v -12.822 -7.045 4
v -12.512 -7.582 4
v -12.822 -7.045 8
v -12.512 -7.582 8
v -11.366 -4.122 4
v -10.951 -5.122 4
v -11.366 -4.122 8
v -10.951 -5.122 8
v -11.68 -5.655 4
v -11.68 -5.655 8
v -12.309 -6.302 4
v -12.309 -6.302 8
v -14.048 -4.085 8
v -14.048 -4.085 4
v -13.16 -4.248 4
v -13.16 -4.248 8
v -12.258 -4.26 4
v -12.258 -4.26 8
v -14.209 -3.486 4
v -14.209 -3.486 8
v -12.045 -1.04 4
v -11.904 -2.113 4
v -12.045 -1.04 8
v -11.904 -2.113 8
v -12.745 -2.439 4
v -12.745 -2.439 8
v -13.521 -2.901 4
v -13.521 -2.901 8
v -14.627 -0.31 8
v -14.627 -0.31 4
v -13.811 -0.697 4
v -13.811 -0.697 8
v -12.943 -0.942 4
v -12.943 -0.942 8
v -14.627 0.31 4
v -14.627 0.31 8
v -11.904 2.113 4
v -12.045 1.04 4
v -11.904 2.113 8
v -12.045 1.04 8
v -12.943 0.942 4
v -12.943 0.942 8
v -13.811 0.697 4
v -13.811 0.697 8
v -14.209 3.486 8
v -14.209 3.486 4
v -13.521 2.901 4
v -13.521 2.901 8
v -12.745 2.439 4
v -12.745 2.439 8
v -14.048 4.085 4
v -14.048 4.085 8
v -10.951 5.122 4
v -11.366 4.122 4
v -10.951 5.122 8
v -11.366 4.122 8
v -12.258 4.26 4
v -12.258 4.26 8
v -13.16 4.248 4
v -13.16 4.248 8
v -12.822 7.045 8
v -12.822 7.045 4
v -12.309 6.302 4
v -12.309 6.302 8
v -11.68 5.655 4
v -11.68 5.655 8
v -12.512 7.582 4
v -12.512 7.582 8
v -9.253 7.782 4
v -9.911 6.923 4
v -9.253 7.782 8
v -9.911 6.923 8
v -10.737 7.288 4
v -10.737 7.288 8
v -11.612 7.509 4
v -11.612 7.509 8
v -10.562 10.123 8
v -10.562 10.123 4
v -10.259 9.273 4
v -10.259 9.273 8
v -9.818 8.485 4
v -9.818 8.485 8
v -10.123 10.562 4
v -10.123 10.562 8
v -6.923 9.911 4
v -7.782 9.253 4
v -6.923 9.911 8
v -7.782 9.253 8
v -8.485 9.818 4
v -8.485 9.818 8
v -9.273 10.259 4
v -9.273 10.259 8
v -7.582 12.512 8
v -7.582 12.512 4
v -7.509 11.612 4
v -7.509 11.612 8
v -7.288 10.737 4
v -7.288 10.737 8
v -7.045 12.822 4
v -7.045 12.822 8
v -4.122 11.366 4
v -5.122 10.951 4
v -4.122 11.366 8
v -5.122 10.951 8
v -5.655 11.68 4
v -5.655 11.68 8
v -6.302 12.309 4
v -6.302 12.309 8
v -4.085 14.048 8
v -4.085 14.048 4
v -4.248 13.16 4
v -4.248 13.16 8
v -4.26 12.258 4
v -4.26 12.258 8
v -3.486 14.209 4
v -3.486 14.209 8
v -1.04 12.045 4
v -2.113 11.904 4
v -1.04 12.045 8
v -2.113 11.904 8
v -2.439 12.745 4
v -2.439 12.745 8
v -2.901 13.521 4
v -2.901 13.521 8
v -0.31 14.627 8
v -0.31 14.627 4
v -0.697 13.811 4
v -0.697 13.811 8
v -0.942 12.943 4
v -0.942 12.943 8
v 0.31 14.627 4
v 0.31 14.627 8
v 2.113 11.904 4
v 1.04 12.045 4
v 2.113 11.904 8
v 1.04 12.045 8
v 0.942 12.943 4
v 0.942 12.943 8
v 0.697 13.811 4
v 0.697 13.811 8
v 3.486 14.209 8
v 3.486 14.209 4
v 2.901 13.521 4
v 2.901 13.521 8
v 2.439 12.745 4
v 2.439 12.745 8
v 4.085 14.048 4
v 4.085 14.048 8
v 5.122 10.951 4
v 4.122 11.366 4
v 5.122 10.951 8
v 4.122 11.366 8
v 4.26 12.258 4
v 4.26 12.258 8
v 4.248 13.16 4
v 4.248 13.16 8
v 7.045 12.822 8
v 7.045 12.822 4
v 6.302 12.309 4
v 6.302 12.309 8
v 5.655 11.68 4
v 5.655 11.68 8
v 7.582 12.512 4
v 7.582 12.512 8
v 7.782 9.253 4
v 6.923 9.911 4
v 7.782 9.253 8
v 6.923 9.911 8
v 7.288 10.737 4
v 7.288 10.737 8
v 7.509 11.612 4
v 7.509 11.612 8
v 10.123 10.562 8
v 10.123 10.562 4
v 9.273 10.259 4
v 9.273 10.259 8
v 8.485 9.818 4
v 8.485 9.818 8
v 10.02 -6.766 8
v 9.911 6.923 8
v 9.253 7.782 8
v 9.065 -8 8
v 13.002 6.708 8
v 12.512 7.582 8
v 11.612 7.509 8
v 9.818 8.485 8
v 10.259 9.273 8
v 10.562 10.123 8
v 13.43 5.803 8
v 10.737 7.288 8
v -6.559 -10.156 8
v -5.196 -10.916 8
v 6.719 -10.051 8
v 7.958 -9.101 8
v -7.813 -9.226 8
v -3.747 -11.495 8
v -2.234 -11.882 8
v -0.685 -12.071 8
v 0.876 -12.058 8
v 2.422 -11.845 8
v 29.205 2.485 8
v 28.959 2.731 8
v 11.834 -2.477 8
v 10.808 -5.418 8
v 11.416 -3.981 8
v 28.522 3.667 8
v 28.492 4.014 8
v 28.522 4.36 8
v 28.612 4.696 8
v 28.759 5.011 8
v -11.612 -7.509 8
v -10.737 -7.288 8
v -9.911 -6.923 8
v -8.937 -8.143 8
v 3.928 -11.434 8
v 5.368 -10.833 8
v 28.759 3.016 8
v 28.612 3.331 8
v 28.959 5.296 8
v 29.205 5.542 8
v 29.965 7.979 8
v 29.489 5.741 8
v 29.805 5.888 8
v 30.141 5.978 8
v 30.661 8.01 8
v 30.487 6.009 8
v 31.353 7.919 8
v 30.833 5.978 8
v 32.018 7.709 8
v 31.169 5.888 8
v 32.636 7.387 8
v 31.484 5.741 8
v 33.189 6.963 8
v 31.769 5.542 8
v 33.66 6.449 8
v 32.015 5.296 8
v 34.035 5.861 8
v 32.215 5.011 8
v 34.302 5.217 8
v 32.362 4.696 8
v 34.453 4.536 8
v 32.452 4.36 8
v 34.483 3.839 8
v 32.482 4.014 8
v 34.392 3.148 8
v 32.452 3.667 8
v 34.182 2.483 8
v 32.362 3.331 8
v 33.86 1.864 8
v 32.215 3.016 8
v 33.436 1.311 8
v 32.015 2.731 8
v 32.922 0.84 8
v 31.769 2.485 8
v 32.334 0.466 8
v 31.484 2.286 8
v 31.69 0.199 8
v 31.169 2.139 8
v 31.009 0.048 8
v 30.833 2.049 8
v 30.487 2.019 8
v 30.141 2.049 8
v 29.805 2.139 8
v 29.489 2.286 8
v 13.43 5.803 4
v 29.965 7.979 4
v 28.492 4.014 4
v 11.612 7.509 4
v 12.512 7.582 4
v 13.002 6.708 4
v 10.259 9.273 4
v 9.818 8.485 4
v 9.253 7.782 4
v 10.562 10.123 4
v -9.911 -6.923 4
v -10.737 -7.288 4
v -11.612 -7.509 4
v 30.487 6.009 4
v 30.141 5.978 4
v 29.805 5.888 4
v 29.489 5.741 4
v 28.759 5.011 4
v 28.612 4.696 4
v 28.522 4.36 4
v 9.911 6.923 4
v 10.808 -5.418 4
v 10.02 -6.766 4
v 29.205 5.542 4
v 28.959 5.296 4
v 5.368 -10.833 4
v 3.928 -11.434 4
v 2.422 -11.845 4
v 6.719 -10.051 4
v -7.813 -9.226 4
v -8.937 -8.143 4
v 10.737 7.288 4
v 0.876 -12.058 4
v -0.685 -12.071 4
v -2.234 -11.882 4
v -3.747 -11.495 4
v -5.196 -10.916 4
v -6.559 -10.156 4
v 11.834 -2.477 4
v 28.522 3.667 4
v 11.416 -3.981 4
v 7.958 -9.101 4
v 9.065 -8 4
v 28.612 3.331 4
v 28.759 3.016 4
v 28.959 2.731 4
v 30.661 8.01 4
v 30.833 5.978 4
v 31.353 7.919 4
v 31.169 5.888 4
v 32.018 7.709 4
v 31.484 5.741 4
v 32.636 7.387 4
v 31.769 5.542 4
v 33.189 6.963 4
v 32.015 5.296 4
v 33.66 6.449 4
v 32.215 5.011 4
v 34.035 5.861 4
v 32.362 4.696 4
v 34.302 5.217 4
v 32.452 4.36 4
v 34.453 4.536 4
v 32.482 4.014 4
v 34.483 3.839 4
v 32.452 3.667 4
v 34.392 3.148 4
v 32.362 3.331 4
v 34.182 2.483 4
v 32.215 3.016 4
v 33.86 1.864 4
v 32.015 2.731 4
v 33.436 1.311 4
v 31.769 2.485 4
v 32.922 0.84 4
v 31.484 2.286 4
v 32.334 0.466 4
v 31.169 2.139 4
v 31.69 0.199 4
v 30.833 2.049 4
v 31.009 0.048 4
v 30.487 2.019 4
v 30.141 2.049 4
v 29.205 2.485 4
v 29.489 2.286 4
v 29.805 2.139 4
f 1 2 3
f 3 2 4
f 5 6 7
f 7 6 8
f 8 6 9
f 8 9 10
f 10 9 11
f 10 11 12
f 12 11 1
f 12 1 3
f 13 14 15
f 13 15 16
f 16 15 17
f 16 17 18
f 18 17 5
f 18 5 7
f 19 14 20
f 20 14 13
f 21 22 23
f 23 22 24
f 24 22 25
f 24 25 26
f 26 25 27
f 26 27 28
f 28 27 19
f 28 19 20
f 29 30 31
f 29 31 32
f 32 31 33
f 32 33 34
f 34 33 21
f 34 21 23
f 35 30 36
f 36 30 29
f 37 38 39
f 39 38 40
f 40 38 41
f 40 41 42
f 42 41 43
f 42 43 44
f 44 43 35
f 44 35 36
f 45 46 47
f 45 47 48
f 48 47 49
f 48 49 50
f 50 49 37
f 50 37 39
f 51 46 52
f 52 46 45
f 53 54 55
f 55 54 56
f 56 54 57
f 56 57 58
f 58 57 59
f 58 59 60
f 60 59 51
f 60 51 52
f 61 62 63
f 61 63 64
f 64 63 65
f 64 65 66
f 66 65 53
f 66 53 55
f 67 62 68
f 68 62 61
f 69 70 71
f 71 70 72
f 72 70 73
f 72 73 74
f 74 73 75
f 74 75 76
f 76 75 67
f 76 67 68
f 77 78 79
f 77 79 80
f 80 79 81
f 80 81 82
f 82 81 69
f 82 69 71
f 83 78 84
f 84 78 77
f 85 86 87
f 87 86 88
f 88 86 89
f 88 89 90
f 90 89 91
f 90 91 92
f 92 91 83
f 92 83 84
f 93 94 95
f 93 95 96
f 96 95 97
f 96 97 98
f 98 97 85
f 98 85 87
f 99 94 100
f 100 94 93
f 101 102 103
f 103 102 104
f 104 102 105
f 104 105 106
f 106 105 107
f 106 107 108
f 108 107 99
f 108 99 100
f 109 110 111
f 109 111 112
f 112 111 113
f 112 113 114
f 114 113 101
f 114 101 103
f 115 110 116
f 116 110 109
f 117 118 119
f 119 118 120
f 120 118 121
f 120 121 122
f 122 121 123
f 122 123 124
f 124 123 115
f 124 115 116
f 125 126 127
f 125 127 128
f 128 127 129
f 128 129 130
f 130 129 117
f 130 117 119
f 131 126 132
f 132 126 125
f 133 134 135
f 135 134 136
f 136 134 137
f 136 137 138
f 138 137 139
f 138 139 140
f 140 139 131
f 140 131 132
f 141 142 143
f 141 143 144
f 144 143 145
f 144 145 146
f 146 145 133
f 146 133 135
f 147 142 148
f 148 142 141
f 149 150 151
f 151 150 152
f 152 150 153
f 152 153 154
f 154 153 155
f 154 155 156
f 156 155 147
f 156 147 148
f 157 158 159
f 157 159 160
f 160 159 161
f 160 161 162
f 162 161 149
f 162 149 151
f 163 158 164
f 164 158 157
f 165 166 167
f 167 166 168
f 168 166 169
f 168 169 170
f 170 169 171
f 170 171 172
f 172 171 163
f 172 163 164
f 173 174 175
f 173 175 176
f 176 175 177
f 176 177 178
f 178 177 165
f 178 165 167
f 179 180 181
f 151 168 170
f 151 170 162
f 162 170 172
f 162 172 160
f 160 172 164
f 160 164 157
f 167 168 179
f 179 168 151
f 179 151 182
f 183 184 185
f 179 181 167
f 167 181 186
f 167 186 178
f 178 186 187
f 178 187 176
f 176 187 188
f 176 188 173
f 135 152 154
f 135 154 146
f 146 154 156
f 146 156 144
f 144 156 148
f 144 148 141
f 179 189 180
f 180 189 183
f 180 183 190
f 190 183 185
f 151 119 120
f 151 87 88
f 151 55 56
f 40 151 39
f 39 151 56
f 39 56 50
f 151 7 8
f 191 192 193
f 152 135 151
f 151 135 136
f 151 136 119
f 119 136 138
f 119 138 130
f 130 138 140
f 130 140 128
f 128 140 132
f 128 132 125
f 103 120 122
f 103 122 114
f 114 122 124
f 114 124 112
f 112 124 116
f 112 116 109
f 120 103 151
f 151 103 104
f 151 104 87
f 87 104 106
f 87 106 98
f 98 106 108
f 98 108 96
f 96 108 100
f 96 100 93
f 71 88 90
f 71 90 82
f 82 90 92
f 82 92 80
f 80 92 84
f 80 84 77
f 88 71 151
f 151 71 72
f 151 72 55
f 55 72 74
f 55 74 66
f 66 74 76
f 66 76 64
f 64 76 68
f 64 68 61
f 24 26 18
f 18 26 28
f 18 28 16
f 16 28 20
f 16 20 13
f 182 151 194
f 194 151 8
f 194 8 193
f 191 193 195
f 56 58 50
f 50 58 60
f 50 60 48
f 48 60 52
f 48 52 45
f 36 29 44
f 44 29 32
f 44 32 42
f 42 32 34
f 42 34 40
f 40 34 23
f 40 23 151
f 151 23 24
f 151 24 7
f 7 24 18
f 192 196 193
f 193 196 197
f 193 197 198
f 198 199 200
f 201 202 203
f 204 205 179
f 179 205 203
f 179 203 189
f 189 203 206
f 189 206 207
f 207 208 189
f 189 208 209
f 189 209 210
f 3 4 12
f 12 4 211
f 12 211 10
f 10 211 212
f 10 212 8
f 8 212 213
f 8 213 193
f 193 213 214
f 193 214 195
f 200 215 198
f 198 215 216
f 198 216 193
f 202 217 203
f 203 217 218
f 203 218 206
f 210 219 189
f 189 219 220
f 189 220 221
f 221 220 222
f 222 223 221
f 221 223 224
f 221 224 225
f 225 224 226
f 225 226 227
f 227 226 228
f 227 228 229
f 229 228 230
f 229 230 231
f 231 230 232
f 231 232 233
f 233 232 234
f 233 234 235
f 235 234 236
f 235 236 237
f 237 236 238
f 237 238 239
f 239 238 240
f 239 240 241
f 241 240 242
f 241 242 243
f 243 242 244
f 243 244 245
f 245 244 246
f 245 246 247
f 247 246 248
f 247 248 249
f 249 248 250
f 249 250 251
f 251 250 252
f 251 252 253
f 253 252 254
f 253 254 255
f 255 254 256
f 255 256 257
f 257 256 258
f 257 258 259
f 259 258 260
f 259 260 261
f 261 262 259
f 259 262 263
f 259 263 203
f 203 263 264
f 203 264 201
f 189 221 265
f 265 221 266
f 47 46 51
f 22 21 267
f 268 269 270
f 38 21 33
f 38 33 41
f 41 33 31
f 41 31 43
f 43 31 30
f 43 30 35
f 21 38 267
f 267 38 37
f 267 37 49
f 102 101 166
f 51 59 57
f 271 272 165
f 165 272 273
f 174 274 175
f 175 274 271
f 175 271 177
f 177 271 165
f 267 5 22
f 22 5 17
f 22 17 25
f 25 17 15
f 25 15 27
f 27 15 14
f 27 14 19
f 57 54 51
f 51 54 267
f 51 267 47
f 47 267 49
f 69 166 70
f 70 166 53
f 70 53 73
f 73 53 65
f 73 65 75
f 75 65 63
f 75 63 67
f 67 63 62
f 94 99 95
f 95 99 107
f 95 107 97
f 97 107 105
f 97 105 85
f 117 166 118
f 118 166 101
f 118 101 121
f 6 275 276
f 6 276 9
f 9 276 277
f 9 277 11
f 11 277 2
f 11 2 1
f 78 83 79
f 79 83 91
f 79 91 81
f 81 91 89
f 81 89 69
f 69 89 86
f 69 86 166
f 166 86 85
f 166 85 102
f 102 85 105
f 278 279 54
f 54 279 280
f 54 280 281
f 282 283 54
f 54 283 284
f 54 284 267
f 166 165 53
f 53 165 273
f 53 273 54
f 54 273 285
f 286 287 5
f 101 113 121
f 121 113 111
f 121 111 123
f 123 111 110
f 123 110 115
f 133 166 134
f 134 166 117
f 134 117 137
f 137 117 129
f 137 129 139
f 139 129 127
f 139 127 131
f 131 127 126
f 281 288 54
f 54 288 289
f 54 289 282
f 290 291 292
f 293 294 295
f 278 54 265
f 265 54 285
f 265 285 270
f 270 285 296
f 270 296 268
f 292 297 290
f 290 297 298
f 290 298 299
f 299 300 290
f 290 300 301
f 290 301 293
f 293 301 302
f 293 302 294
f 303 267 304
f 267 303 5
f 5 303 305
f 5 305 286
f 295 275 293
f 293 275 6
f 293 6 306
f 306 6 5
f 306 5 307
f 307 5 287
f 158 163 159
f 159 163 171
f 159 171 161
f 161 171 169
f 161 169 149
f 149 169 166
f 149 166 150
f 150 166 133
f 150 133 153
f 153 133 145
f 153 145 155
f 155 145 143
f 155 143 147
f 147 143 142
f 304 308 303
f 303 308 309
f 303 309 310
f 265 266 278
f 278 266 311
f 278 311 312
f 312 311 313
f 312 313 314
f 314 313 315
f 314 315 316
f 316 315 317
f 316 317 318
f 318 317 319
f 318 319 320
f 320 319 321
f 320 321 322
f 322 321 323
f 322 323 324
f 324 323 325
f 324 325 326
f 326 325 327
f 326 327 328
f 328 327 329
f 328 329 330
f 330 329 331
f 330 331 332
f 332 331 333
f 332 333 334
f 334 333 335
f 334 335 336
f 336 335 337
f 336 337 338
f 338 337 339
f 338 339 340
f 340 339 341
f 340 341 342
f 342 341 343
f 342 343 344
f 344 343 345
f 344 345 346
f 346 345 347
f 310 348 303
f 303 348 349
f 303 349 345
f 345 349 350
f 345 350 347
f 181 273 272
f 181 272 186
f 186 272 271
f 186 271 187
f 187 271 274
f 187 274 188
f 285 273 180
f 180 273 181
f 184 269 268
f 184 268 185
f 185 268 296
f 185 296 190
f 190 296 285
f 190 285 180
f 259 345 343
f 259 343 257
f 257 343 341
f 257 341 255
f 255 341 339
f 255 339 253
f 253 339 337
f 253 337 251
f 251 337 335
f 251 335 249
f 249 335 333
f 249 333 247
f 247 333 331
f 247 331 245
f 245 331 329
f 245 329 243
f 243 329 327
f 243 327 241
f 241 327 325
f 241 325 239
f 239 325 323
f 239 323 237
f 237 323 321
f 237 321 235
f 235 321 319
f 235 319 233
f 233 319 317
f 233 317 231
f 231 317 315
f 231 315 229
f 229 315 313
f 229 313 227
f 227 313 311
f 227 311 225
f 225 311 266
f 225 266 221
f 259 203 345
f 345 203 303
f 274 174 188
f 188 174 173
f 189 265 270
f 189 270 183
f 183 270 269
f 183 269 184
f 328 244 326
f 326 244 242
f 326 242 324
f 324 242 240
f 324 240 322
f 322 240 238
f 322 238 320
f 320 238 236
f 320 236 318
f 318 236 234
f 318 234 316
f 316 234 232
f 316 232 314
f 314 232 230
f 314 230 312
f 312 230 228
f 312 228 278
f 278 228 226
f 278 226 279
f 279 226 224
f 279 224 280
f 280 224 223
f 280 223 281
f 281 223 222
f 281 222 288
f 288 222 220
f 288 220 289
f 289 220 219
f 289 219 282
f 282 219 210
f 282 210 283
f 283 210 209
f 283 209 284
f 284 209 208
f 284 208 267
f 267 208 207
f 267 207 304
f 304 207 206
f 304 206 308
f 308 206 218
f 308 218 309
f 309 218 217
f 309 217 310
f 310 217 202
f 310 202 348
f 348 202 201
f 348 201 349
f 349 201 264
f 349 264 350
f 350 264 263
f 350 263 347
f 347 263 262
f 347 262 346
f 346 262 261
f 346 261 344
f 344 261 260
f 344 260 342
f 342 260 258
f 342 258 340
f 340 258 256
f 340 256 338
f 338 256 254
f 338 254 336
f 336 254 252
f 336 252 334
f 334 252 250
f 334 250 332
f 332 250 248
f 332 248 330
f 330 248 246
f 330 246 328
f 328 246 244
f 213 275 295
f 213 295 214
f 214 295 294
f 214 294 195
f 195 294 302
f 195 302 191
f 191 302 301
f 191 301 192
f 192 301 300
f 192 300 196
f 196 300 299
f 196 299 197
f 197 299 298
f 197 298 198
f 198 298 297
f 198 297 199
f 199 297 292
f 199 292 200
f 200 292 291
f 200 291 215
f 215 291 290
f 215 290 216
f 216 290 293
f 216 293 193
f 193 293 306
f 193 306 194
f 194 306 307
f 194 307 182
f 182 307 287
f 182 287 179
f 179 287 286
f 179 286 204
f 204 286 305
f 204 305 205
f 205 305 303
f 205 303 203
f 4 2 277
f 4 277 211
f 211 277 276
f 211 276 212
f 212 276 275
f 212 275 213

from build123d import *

# Parameters (mm, degrees)
SKETCH2_R           = 1.75
SKETCH2_R_2         = 1.995
BOSS_EXTRUDE1_DEPTH = 4
SKETCH4_R           = 1.3
SKETCH4_R_2         = 2.4
CUT_EXTRUDE1_DEPTH  = 38.915688046
SKETCH6_R           = 12.09
BOSS_EXTRUDE3_DEPTH = 4
CUT_EXTRUDE5_DEPTH  = 4
SKETCH10_W          = 77.083207297
SKETCH10_H          = 41.615870942
CUT_EXTRUDE6_DEPTH  = 4
CIRPATTERN3_START   = 4
CIRPATTERN3_DEPTH   = 4
SKETCH11_R          = 1.995
CUT_EXTRUDE7_DEPTH  = 4
CUT_EXTRUDE8_DEPTH  = 4


# Read off the part's stored shape, not the designer's step: CirPattern3
with BuildPart() as part:
    # Sketch2 → Boss-Extrude1 (new body)
    with BuildSketch(Plane.XY):
        with BuildLine():
            ThreePointArc((30.75, -4), (34.75, 0), (30.75, 4))
            Line((30.75, 4), (14.072558403, 4))
            ThreePointArc((14.072558403, 4), (14.06038767, 4.04257326), (14.048088143, 4.085109489))
            ThreePointArc((14.048088143, 4.085109489), (12.709169027, 4.272836063), (11.365584201, 4.122086336))
            ThreePointArc((11.365584201, 4.122086336), (11.169703548, 4.626642697), (10.951436862, 5.12192646))
            ThreePointArc((10.951436862, 5.12192646), (12.008090957, 5.965388247), (12.82210701, 7.044889767))
            ThreePointArc((12.82210701, 7.044889767), (12.669951657, 7.315), (12.51210701, 7.581825517))
            ThreePointArc((12.51210701, 7.581825517), (11.170223244, 7.416617696), (9.911436862, 6.9232593))
            ThreePointArc((9.911436862, 6.9232593), (9.591641884, 7.359925677), (9.252623584, 7.781841479))
            ThreePointArc((9.252623584, 7.781841479), (10.05496909, 8.870045207), (10.561852666, 10.123446462))
            ThreePointArc((10.561852666, 10.123446462), (10.344972209, 10.344972209), (10.123446462, 10.561852666))
            ThreePointArc((10.123446462, 10.561852666), (8.870045207, 10.05496909), (7.781841479, 9.252623584))
            ThreePointArc((7.781841479, 9.252623584), (7.359925677, 9.591641884), (6.9232593, 9.911436862))
            ThreePointArc((6.9232593, 9.911436862), (7.416617696, 11.170223244), (7.581825517, 12.51210701))
            ThreePointArc((7.581825517, 12.51210701), (7.315, 12.669951657), (7.044889767, 12.82210701))
            ThreePointArc((7.044889767, 12.82210701), (5.965388247, 12.008090957), (5.12192646, 10.951436862))
            ThreePointArc((5.12192646, 10.951436862), (4.626642697, 11.169703548), (4.122086336, 11.365584201))
            ThreePointArc((4.122086336, 11.365584201), (4.272836063, 12.709169027), (4.085109489, 14.048088143))
            ThreePointArc((4.085109489, 14.048088143), (3.78652263, 14.131494839), (3.486235477, 14.208555951))
            ThreePointArc((3.486235477, 14.208555951), (2.654199937, 13.14288127), (2.112960617, 11.903927815))
            ThreePointArc((2.112960617, 11.903927815), (1.578061664, 11.986568374), (1.04, 12.04518576))
            ThreePointArc((1.04, 12.04518576), (0.837867713, 13.382005944), (0.31, 14.626715284))
            ThreePointArc((0.31, 14.626715284), (0, 14.63), (-0.31, 14.626715284))
            ThreePointArc((-0.31, 14.626715284), (-0.837867713, 13.382005944), (-1.04, 12.04518576))
            ThreePointArc((-1.04, 12.04518576), (-1.578061664, 11.986568374), (-2.112960617, 11.903927815))
            ThreePointArc((-2.112960617, 11.903927815), (-2.654199937, 13.14288127), (-3.486235477, 14.208555951))
            ThreePointArc((-3.486235477, 14.208555951), (-3.78652263, 14.131494839), (-4.085109489, 14.048088143))
            ThreePointArc((-4.085109489, 14.048088143), (-4.272836063, 12.709169027), (-4.122086336, 11.365584201))
            ThreePointArc((-4.122086336, 11.365584201), (-4.626642697, 11.169703548), (-5.12192646, 10.951436862))
            ThreePointArc((-5.12192646, 10.951436862), (-5.965388247, 12.008090957), (-7.044889767, 12.82210701))
            ThreePointArc((-7.044889767, 12.82210701), (-7.315, 12.669951657), (-7.581825517, 12.51210701))
            ThreePointArc((-7.581825517, 12.51210701), (-7.416617696, 11.170223244), (-6.9232593, 9.911436862))
            ThreePointArc((-6.9232593, 9.911436862), (-7.359925677, 9.591641884), (-7.781841479, 9.252623584))
            ThreePointArc((-7.781841479, 9.252623584), (-8.870045207, 10.05496909), (-10.123446462, 10.561852666))
            ThreePointArc((-10.123446462, 10.561852666), (-10.344972209, 10.344972209), (-10.561852666, 10.123446462))
            ThreePointArc((-10.561852666, 10.123446462), (-10.05496909, 8.870045207), (-9.252623584, 7.781841479))
            ThreePointArc((-9.252623584, 7.781841479), (-9.591641884, 7.359925677), (-9.911436862, 6.9232593))
            ThreePointArc((-9.911436862, 6.9232593), (-11.170223244, 7.416617696), (-12.51210701, 7.581825517))
            ThreePointArc((-12.51210701, 7.581825517), (-12.669951657, 7.315), (-12.82210701, 7.044889767))
            ThreePointArc((-12.82210701, 7.044889767), (-12.008090957, 5.965388247), (-10.951436862, 5.12192646))
            ThreePointArc((-10.951436862, 5.12192646), (-11.169703548, 4.626642697), (-11.365584201, 4.122086336))
            ThreePointArc((-11.365584201, 4.122086336), (-12.709169027, 4.272836063), (-14.048088143, 4.085109489))
            ThreePointArc((-14.048088143, 4.085109489), (-14.131494839, 3.78652263), (-14.208555951, 3.486235477))
            ThreePointArc((-14.208555951, 3.486235477), (-13.14288127, 2.654199937), (-11.903927815, 2.112960617))
            ThreePointArc((-11.903927815, 2.112960617), (-11.986568374, 1.578061664), (-12.04518576, 1.04))
            ThreePointArc((-12.04518576, 1.04), (-13.382005944, 0.837867713), (-14.626715284, 0.31))
            ThreePointArc((-14.626715284, 0.31), (-14.63, 0), (-14.626715284, -0.31))
            ThreePointArc((-14.626715284, -0.31), (-13.382005944, -0.837867713), (-12.04518576, -1.04))
            ThreePointArc((-12.04518576, -1.04), (-11.986568374, -1.578061664), (-11.903927815, -2.112960617))
            ThreePointArc((-11.903927815, -2.112960617), (-13.14288127, -2.654199937), (-14.208555951, -3.486235477))
            ThreePointArc((-14.208555951, -3.486235477), (-14.131494839, -3.78652263), (-14.048088143, -4.085109489))
            ThreePointArc((-14.048088143, -4.085109489), (-12.709169027, -4.272836063), (-11.365584201, -4.122086336))
            ThreePointArc((-11.365584201, -4.122086336), (0.064808849, -12.089826294), (11.409123542, -4))
            Line((11.409123542, -4), (30.75, -4))
        make_face()
        Circle(SKETCH2_R, mode=Mode.SUBTRACT)
        with Locations((30.75, 0)):
            Circle(SKETCH2_R_2, mode=Mode.SUBTRACT)
    extrude(amount=BOSS_EXTRUDE1_DEPTH)

    # Sketch4 → Cut-Extrude1 (cut, through all)
    with BuildSketch(Plane.XY.offset(4)):
        with Locations((4.5, 0)):
            Circle(SKETCH4_R)
        with Locations((-4.5, 0)):
            Circle(SKETCH4_R)
        Circle(SKETCH4_R_2)
    extrude(amount=-CUT_EXTRUDE1_DEPTH, mode=Mode.SUBTRACT)

    # Sketch6 → Boss-Extrude3 (add)
    with BuildSketch(Plane.XY.offset(4)):
        with BuildLine():
            Line((-0.522104769, 3.965779445), (0, 4.034515842))
            Line((0, 4.034515842), (0, 12.09))
            ThreePointArc((0, 12.09), (-9.383764517, -7.623192474), (11.833621678, -2.476589993))
            Line((11.833621678, -2.476589993), (0.522104769, -3.965779445))
            ThreePointArc((0.522104769, -3.965779445), (-3.965779445, -0.522104769), (-0.522104769, 3.965779445))
        make_face()
        with BuildLine():
            Line((0, 12.09), (0, 4.034515842))
            Line((0, 4.034515842), (1.120574863, 4.182042322))
            Line((1.120574863, 4.182042322), (3.129122255, 11.67804324))
            ThreePointArc((3.129122255, 11.67804324), (1.578061664, 11.986568374), (0, 12.09))
        make_face()
        with BuildLine():
            Line((3.129122255, 11.67804324), (1.120574863, 4.182042322))
            Line((1.120574863, 4.182042322), (10.78941214, 5.454968898))
            ThreePointArc((10.78941214, 5.454968898), (7.623192474, 9.383764517), (3.129122255, 11.67804324))
        make_face()
        with BuildLine():
            Line((1.120574863, 4.182042322), (0, 0))
            Line((0, 0), (0, 4.034515842))
            Line((0, 4.034515842), (-0.522104769, 3.965779445))
            ThreePointArc((-0.522104769, 3.965779445), (-3.965779445, -0.522104769), (0.522104769, -3.965779445))
            Line((0.522104769, -3.965779445), (11.833621678, -2.476589993))
            ThreePointArc((11.833621678, -2.476589993), (12.025734615, -1.24491243), (12.09, 0))
            ThreePointArc((12.09, 0), (11.76035911, 2.80393538), (10.78941214, 5.454968898))
            Line((10.78941214, 5.454968898), (1.120574863, 4.182042322))
        make_face()
        with BuildLine():
            Line((13.430060946, 5.802616909), (10.78941214, 5.454968898))
            ThreePointArc((10.78941214, 5.454968898), (11.76035911, 2.80393538), (12.09, 0))
            ThreePointArc((12.09, 0), (12.025734615, -1.24491243), (11.833621678, -2.476589993))
            Line((11.833621678, -2.476589993), (14.474270484, -2.128941982))
            ThreePointArc((14.474270484, -2.128941982), (14.59101568, -1.067315048), (14.63, 0))
            ThreePointArc((14.63, 0), (14.32687495, 2.962693737), (13.430060946, 5.802616909))
        make_face()
        with BuildLine():
            Line((29.964824718, 7.979459856), (13.430060946, 5.802616909))
            ThreePointArc((13.430060946, 5.802616909), (14.32687495, 2.962693737), (14.63, 0))
            ThreePointArc((14.63, 0), (14.59101568, -1.067315048), (14.474270484, -2.128941982))
            Line((14.474270484, -2.128941982), (31.009034256, 0.047900965))
            ThreePointArc((31.009034256, 0.047900965), (34.452708933, 4.53578518), (29.964824718, 7.979459856))
        make_face()
        with BuildLine():
            Line((3.78652263, 14.131494839), (3.129122255, 11.67804324))
            ThreePointArc((3.129122255, 11.67804324), (7.623192474, 9.383764517), (10.78941214, 5.454968898))
            Line((10.78941214, 5.454968898), (13.430060946, 5.802616909))
            ThreePointArc((13.430060946, 5.802616909), (9.562700424, 11.07211184), (3.78652263, 14.131494839))
        make_face()
        Circle(SKETCH6_R)
        with BuildLine():
            Line((0, 0), (3.78652263, 14.131494839))
            ThreePointArc((3.78652263, 14.131494839), (1.909598192, 14.504838322), (0, 14.63))
            Line((0, 14.63), (0, 0))
        make_face()
        with BuildLine():
            ThreePointArc((11.833621678, -2.476589993), (-9.383764517, -7.623192474), (0, 12.09))
            Line((0, 12.09), (0, 14.63))
            ThreePointArc((0, 14.63), (-11.07211184, -9.562700424), (14.474270484, -2.128941982))
            Line((14.474270484, -2.128941982), (11.833621678, -2.476589993))
        make_face()
        Polygon((0, 4.034515842), (0, 0), (1.120574863, 4.182042322), align=None)
    extrude(amount=BOSS_EXTRUDE3_DEPTH)

    # Sketch7 → Cut-Extrude5 (cut)
    with BuildSketch(Plane.XY.offset(4)):
        with BuildLine():
            ThreePointArc((9.911436862, 6.9232593), (11.170223244, 7.416617696), (12.51210701, 7.581825517))
            ThreePointArc((12.51210701, 7.581825517), (11.606759368, 8.906179706), (10.561852666, 10.123446462))
            ThreePointArc((10.561852666, 10.123446462), (10.05496909, 8.870045207), (9.252623584, 7.781841479))
            ThreePointArc((9.252623584, 7.781841479), (9.591641884, 7.359925677), (9.911436862, 6.9232593))
        make_face()
    extrude(amount=CUT_EXTRUDE5_DEPTH, mode=Mode.SUBTRACT)

    # Sketch10 → Cut-Extrude6 (cut)
    # profile 1 of 2: a face of its own
    with BuildSketch(Plane(origin=(0, 0, 0), x_dir=(-1, 0, 0), z_dir=(0, 0, -1))):
        with Locations((-5.704161283, 1.736795553)):
            Rectangle(SKETCH10_W, SKETCH10_H)
        Polygon((-12.51210701, 7.581825517), (-10.123446462, 10.561852666), (0, 0), align=None, mode=Mode.SUBTRACT)
    # profile 2 of 2: a face of its own
    with BuildSketch(Plane(origin=(0, 0, 0), x_dir=(-1, 0, 0), z_dir=(0, 0, -1))):
        Polygon((-10.123446462, 10.561852666), (0, 0), (-12.51210701, 7.581825517), align=None)
    extrude(amount=-CUT_EXTRUDE6_DEPTH, mode=Mode.SUBTRACT)

    # CirPattern3 outline → CirPattern3 (cut)
    with BuildSketch(Plane.XY.offset(CIRPATTERN3_START)):
        with BuildLine():
            ThreePointArc((-12.82210701, -7.044889767), (-12.008090957, -5.965388247), (-10.951436862, -5.12192646))
            ThreePointArc((-10.951436862, -5.12192646), (-11.169703548, -4.626642697), (-11.365584201, -4.122086336))
            ThreePointArc((-11.365584201, -4.122086336), (-12.709169027, -4.272836063), (-14.048088143, -4.085109489))
            ThreePointArc((-14.048088143, -4.085109489), (-13.516357561, -5.598658615), (-12.82210701, -7.044889767))
        make_face()
        with BuildLine():
            ThreePointArc((10.123446462, 10.561852666), (8.906179707, 11.606759369), (7.581825517, 12.51210701))
            ThreePointArc((7.581825517, 12.51210701), (7.416617696, 11.170223245), (6.9232593, 9.911436862))
            ThreePointArc((6.9232593, 9.911436862), (7.359925677, 9.591641884), (7.781841479, 9.252623584))
            ThreePointArc((7.781841479, 9.252623584), (8.870045207, 10.05496909), (10.123446462, 10.561852666))
        make_face()
        with BuildLine():
            ThreePointArc((7.044889767, 12.82210701), (5.598658616, 13.516357561), (4.085109489, 14.048088143))
            ThreePointArc((4.085109489, 14.048088143), (4.272836063, 12.709169027), (4.122086336, 11.365584201))
            ThreePointArc((4.122086336, 11.365584201), (4.626642697, 11.169703548), (5.12192646, 10.951436862))
            ThreePointArc((5.12192646, 10.951436862), (5.965388247, 12.008090957), (7.044889767, 12.82210701))
        make_face()
        with BuildLine():
            ThreePointArc((3.486235477, 14.208555951), (1.909598192, 14.504838322), (0.31, 14.626715284))
            ThreePointArc((0.31, 14.626715284), (0.837867713, 13.382005944), (1.04, 12.04518576))
            ThreePointArc((1.04, 12.04518576), (1.578061664, 11.986568374), (2.112960617, 11.903927815))
            ThreePointArc((2.112960617, 11.903927815), (2.654199937, 13.14288127), (3.486235477, 14.208555951))
        make_face()
        with BuildLine():
            ThreePointArc((-0.31, 14.626715284), (-1.909598192, 14.504838322), (-3.486235477, 14.208555951))
            ThreePointArc((-3.486235477, 14.208555951), (-2.654199937, 13.14288127), (-2.112960617, 11.903927815))
            ThreePointArc((-2.112960617, 11.903927815), (-1.578061664, 11.986568374), (-1.04, 12.04518576))
            ThreePointArc((-1.04, 12.04518576), (-0.837867713, 13.382005944), (-0.31, 14.626715284))
        make_face()
        with BuildLine():
            ThreePointArc((-4.085109489, 14.048088143), (-5.598658616, 13.516357561), (-7.044889767, 12.82210701))
            ThreePointArc((-7.044889767, 12.82210701), (-5.965388247, 12.008090957), (-5.12192646, 10.951436862))
            ThreePointArc((-5.12192646, 10.951436862), (-4.626642697, 11.169703548), (-4.122086336, 11.365584201))
            ThreePointArc((-4.122086336, 11.365584201), (-4.272836063, 12.709169027), (-4.085109489, 14.048088143))
        make_face()
        with BuildLine():
            ThreePointArc((-7.581825517, 12.51210701), (-8.906179706, 11.606759368), (-10.123446462, 10.561852666))
            ThreePointArc((-10.123446462, 10.561852666), (-8.870045207, 10.05496909), (-7.781841479, 9.252623584))
            ThreePointArc((-7.781841479, 9.252623584), (-7.359925677, 9.591641884), (-6.9232593, 9.911436862))
            ThreePointArc((-6.9232593, 9.911436862), (-7.416617696, 11.170223245), (-7.581825517, 12.51210701))
        make_face()
        with BuildLine():
            ThreePointArc((-10.561852666, 10.123446462), (-11.606759368, 8.906179706), (-12.51210701, 7.581825517))
            ThreePointArc((-12.51210701, 7.581825517), (-11.170223245, 7.416617696), (-9.911436862, 6.9232593))
            ThreePointArc((-9.911436862, 6.9232593), (-9.591641884, 7.359925677), (-9.252623584, 7.781841479))
            ThreePointArc((-9.252623584, 7.781841479), (-10.05496909, 8.870045207), (-10.561852666, 10.123446462))
        make_face()
        with BuildLine():
            ThreePointArc((-12.82210701, 7.044889767), (-13.516357561, 5.598658616), (-14.048088143, 4.085109489))
            ThreePointArc((-14.048088143, 4.085109489), (-12.709169027, 4.272836063), (-11.365584201, 4.122086336))
            ThreePointArc((-11.365584201, 4.122086336), (-11.169703548, 4.626642697), (-10.951436862, 5.12192646))
            ThreePointArc((-10.951436862, 5.12192646), (-12.008090957, 5.965388247), (-12.82210701, 7.044889767))
        make_face()
        with BuildLine():
            ThreePointArc((-14.20855595, 3.486235477), (-14.504838322, 1.909598192), (-14.626715284, 0.31))
            ThreePointArc((-14.626715284, 0.31), (-13.382005944, 0.837867713), (-12.04518576, 1.04))
            ThreePointArc((-12.04518576, 1.04), (-11.986568374, 1.578061664), (-11.903927815, 2.112960617))
            ThreePointArc((-11.903927815, 2.112960617), (-13.14288127, 2.654199937), (-14.20855595, 3.486235477))
        make_face()
        with BuildLine():
            ThreePointArc((-14.626715284, -0.31), (-14.504838322, -1.909598192), (-14.20855595, -3.486235477))
            ThreePointArc((-14.20855595, -3.486235477), (-13.14288127, -2.654199937), (-11.903927815, -2.112960617))
            ThreePointArc((-11.903927815, -2.112960617), (-11.986568374, -1.578061664), (-12.04518576, -1.04))
            ThreePointArc((-12.04518576, -1.04), (-13.382005944, -0.837867713), (-14.626715284, -0.31))
        make_face()
    extrude(amount=CIRPATTERN3_DEPTH, mode=Mode.SUBTRACT)

    # Sketch11 → Cut-Extrude7 (cut)
    with BuildSketch(Plane.XY.offset(8)):
        with Locations((30.486929487, 4.013680411)):
            Circle(SKETCH11_R)
    extrude(amount=-CUT_EXTRUDE7_DEPTH, mode=Mode.SUBTRACT)

    # Sketch12 → Cut-Extrude8 (cut)
    with BuildSketch(Plane(origin=(0, 0, 4), x_dir=(-1, 0, 0), z_dir=(0, 0, -1))):
        with BuildLine():
            Line((-11.833621678, -2.476589993), (-14.474270484, -2.128941982))
            ThreePointArc((-14.474270484, -2.128941982), (-2.897586252, -14.340184584), (12.51210701, -7.581825517))
            ThreePointArc((12.51210701, -7.581825517), (11.170223244, -7.416617696), (9.911436862, -6.9232593))
            ThreePointArc((9.911436862, -6.9232593), (-2.42217167, -11.844880092), (-11.833621678, -2.476589993))
        make_face()
    extrude(amount=-CUT_EXTRUDE8_DEPTH, mode=Mode.SUBTRACT)


solid = part.part
